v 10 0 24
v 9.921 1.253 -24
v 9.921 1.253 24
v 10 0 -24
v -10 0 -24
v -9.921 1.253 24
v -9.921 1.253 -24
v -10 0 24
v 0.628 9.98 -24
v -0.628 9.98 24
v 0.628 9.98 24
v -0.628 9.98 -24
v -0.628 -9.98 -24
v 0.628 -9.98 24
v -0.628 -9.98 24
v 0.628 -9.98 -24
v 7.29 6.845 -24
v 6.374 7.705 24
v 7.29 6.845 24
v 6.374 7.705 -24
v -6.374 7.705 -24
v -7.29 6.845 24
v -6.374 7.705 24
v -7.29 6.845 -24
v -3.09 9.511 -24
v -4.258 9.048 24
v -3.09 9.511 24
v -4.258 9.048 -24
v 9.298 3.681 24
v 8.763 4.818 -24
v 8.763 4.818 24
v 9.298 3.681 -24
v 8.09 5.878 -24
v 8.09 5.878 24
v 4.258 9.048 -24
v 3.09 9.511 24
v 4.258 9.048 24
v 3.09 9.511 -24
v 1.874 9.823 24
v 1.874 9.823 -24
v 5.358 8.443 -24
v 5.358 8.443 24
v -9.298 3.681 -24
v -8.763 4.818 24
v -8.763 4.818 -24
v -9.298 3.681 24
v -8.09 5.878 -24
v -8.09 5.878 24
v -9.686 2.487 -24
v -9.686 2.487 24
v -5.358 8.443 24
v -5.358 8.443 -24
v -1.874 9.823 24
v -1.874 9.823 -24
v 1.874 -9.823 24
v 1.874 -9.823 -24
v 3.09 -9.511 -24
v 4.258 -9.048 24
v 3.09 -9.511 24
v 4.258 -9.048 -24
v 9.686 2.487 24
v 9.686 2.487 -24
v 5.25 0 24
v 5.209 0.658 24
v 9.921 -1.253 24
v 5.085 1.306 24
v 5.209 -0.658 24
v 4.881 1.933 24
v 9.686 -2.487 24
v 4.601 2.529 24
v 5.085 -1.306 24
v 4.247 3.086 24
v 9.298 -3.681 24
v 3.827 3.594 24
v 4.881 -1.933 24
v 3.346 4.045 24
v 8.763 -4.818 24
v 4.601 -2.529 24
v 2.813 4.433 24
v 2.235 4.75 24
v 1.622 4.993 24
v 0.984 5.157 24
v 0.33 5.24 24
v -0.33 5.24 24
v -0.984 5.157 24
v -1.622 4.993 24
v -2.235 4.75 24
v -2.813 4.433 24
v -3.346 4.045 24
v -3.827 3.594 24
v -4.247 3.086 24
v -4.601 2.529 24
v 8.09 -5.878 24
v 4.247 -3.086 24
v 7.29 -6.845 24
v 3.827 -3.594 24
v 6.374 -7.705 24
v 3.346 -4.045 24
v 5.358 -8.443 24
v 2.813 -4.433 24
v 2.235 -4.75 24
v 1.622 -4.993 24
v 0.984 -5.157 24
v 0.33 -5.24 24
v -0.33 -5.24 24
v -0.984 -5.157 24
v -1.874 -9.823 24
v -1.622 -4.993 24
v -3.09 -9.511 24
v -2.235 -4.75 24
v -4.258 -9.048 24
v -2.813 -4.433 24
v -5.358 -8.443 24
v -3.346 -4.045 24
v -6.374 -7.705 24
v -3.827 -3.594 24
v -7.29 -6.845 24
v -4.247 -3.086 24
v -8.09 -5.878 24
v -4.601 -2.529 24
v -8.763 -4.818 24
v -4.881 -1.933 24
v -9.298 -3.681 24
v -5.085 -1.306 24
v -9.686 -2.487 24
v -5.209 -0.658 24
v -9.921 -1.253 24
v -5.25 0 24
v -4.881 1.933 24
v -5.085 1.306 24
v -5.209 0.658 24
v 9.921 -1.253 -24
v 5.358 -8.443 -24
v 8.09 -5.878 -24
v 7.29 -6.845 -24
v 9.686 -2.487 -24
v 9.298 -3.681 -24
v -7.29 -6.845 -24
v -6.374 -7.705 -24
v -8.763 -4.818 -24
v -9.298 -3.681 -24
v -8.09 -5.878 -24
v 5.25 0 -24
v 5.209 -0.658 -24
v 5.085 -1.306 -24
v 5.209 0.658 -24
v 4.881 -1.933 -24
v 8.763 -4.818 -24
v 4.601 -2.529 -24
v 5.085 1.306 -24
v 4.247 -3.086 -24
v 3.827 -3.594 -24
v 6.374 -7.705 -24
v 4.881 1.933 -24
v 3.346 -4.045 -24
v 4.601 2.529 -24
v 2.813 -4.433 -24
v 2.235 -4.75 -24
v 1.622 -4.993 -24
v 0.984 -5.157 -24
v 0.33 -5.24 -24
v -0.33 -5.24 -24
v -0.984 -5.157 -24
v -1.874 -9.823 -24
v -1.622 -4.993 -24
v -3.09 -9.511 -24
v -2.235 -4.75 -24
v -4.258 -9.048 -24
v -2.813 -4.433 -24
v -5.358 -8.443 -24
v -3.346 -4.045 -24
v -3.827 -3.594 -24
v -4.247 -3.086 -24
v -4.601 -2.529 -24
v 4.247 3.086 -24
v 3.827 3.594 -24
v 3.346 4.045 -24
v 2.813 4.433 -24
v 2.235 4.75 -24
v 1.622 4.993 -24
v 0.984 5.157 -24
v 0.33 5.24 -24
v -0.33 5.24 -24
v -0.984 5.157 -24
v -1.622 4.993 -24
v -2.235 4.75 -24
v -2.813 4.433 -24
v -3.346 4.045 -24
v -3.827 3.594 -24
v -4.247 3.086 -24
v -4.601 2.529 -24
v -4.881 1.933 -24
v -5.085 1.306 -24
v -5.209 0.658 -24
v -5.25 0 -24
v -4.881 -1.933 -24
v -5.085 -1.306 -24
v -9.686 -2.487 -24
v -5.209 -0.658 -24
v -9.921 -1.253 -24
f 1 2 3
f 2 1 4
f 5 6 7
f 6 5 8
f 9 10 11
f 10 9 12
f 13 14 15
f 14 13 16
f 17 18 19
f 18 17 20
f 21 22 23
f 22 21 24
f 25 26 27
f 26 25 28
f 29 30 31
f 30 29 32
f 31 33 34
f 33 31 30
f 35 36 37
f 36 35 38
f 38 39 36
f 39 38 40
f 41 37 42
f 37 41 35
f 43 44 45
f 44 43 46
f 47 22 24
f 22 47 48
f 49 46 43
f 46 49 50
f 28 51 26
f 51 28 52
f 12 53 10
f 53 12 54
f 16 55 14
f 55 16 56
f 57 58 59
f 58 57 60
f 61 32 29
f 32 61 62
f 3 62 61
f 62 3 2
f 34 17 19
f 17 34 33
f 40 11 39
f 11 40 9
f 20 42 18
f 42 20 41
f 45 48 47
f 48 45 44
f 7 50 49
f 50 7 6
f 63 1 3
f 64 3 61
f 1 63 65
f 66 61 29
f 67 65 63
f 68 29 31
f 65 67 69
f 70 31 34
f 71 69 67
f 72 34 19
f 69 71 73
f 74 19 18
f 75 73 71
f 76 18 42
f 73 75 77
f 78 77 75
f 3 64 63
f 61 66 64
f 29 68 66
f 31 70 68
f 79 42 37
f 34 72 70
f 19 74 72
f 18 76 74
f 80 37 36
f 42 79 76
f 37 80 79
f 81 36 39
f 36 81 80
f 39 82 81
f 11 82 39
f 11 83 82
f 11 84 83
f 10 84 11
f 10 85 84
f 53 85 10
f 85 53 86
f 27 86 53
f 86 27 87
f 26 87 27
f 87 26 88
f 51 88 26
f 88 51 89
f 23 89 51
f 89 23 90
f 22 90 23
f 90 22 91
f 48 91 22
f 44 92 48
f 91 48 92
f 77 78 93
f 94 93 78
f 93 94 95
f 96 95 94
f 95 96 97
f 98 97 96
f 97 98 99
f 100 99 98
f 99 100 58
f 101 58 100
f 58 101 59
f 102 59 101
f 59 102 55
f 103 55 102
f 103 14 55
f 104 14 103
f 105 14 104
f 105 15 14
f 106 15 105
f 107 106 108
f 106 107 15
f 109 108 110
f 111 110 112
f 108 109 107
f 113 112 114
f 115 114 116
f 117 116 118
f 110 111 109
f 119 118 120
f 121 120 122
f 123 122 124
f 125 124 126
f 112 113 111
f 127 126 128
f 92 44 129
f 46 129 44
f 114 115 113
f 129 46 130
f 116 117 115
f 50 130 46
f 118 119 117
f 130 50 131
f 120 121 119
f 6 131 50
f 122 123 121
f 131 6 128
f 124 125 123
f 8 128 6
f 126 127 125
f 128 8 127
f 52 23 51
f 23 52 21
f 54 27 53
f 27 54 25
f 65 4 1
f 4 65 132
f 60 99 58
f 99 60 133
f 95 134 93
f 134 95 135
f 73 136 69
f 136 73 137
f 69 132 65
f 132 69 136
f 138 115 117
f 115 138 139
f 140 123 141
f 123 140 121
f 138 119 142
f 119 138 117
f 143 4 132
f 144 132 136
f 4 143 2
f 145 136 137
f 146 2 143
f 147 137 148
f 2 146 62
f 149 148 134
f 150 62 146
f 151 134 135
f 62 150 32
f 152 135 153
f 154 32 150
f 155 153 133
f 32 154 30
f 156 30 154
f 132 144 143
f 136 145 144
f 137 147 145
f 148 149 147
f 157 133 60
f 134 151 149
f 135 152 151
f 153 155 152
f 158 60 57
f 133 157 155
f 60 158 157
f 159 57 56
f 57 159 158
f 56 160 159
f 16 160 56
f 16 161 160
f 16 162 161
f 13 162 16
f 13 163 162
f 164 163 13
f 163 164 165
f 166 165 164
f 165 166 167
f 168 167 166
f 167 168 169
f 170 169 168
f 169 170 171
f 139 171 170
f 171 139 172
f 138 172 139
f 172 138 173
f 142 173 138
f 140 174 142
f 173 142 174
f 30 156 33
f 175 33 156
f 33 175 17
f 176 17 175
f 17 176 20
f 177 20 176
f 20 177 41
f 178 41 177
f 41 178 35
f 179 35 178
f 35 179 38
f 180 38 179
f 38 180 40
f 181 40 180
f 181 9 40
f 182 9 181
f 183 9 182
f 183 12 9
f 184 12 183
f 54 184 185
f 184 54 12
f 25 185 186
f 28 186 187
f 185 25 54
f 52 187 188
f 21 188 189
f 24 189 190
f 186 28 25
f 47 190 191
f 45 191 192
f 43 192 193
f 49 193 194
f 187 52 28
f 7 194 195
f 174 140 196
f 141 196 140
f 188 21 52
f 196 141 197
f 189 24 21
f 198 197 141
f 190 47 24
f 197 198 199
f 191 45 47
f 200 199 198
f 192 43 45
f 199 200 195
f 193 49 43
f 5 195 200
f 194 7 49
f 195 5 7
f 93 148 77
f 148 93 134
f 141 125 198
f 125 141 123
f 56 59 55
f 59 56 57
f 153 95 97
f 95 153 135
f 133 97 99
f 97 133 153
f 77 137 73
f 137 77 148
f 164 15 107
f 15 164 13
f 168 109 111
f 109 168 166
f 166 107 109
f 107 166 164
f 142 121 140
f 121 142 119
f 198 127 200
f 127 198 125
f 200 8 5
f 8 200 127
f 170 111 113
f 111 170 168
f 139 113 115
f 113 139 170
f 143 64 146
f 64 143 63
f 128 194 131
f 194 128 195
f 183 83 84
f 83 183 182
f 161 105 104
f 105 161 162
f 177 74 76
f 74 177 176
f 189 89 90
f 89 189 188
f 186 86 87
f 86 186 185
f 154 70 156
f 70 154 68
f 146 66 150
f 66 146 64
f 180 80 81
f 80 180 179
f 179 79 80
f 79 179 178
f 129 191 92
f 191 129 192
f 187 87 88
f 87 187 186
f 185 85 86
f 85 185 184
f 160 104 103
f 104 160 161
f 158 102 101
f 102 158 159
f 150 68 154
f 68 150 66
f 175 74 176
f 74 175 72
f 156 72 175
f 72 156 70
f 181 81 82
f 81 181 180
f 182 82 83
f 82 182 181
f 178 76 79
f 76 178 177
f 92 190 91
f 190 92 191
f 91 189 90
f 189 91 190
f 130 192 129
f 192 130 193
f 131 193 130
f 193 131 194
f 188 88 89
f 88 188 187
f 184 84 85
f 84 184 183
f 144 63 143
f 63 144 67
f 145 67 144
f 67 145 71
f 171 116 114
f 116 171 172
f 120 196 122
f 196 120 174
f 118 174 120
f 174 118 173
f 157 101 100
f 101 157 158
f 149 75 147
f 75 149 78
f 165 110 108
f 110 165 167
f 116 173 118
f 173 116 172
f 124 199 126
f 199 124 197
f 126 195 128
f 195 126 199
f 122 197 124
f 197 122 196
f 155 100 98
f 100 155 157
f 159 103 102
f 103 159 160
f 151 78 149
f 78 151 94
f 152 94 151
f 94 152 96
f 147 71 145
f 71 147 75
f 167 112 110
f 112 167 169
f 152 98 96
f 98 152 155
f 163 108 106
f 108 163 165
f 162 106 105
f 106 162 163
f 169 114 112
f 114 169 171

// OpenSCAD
$fn = 50;


difference() {
	union() {
		translate(v = [0, 0, -24.0000000000]) {
			cylinder(h = 48, r = 10.0000000000);
		}
	}
	union() {
		translate(v = [0, 0, -100.0000000000]) {
			cylinder(h = 200, r = 5.2500000000);
		}
	}
}
